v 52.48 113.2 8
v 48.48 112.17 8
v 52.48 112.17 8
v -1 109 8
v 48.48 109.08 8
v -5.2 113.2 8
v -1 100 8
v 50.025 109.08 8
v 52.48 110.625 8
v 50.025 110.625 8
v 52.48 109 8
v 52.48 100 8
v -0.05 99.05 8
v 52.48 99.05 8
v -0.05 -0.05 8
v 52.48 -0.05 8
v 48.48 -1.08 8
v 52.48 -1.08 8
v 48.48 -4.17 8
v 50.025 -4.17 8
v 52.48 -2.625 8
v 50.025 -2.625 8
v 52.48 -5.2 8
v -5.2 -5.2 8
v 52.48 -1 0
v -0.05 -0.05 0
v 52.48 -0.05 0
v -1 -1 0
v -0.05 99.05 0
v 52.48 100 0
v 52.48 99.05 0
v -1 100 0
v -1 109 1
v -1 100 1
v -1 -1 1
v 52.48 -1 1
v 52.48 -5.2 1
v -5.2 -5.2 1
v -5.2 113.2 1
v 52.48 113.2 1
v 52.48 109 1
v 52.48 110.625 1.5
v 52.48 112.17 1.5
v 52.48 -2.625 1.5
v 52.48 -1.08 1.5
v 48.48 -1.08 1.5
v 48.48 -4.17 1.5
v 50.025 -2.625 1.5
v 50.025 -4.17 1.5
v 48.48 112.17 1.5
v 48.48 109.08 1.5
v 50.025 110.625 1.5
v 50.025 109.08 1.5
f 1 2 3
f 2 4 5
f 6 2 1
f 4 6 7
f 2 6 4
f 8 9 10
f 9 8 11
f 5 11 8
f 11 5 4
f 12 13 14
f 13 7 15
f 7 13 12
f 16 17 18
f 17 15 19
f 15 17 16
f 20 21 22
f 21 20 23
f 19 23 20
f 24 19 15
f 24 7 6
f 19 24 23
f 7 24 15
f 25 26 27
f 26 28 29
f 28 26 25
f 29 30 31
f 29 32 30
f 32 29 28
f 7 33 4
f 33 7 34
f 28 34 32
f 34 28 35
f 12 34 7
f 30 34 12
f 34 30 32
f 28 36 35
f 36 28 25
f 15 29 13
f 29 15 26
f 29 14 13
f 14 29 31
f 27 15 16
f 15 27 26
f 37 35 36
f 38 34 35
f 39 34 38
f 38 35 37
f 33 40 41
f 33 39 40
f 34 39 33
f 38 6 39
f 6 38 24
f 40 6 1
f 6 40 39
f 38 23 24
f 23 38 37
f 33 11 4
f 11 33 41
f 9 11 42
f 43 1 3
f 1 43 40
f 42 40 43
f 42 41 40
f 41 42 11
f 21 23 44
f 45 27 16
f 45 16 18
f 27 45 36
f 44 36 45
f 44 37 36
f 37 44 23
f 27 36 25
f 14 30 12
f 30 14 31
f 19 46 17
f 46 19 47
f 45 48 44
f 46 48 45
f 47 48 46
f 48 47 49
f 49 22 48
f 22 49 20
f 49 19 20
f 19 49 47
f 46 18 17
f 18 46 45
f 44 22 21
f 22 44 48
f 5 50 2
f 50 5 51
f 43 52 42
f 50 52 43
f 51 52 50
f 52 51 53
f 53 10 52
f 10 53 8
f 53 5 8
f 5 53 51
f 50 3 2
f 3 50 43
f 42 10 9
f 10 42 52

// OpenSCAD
// Generated by SolidPython 1.0.4 on 2021-07-12 16:55:47


difference() {
	difference() {
		difference() {
			union() {
				difference() {
					translate(v = [-1.0000000000, -1.0000000000, 0]) {
						cube(size = [65.0000000000, 101.0000000000, 8]);
					}
					translate(v = [-0.0500000000, -0.0500000000, 0]) {
						cube(size = [63.1000000000, 99.1000000000, 8]);
					}
				}
				translate(v = [0, 0, 1]) {
					difference() {
						translate(v = [-5.2000000000, -5.2000000000, 0]) {
							cube(size = [82.4000000000, 118.4000000000, 7]);
						}
						translate(v = [-1.0000000000, -1.0000000000, 0]) {
							cube(size = [74.0000000000, 110.0000000000, 7]);
						}
					}
				}
			}
			translate(v = [52.4800000000, -5.2000000000, 0]) {
				cube(size = [24.7200000000, 118.4000000000, 8]);
			}
		}
		translate(v = [48.4800000000, -4.1700000000, 0]) {
			translate(v = [0, 0, 1.5000000000]) {
				translate(v = [4, 3.0900000000, 0]) {
					rotate(a = -180) {
						union() {
							translate(v = [2.4550000000, 0, 0]) {
								cube(size = [1.5450000000, 3.0900000000, 6.5000000000]);
							}
							cube(size = [4, 1.5450000000, 6.5000000000]);
						}
					}
				}
			}
		}
	}
	translate(v = [48.4800000000, 109.0800000000, 0]) {
		translate(v = [0, 0, 1.5000000000]) {
			translate(v = [4, 3.0900000000, 0]) {
				rotate(a = -180) {
					union() {
						translate(v = [2.4550000000, 0, 0]) {
							cube(size = [1.5450000000, 3.0900000000, 6.5000000000]);
						}
						cube(size = [4, 1.5450000000, 6.5000000000]);
					}
				}
			}
		}
	}
}
